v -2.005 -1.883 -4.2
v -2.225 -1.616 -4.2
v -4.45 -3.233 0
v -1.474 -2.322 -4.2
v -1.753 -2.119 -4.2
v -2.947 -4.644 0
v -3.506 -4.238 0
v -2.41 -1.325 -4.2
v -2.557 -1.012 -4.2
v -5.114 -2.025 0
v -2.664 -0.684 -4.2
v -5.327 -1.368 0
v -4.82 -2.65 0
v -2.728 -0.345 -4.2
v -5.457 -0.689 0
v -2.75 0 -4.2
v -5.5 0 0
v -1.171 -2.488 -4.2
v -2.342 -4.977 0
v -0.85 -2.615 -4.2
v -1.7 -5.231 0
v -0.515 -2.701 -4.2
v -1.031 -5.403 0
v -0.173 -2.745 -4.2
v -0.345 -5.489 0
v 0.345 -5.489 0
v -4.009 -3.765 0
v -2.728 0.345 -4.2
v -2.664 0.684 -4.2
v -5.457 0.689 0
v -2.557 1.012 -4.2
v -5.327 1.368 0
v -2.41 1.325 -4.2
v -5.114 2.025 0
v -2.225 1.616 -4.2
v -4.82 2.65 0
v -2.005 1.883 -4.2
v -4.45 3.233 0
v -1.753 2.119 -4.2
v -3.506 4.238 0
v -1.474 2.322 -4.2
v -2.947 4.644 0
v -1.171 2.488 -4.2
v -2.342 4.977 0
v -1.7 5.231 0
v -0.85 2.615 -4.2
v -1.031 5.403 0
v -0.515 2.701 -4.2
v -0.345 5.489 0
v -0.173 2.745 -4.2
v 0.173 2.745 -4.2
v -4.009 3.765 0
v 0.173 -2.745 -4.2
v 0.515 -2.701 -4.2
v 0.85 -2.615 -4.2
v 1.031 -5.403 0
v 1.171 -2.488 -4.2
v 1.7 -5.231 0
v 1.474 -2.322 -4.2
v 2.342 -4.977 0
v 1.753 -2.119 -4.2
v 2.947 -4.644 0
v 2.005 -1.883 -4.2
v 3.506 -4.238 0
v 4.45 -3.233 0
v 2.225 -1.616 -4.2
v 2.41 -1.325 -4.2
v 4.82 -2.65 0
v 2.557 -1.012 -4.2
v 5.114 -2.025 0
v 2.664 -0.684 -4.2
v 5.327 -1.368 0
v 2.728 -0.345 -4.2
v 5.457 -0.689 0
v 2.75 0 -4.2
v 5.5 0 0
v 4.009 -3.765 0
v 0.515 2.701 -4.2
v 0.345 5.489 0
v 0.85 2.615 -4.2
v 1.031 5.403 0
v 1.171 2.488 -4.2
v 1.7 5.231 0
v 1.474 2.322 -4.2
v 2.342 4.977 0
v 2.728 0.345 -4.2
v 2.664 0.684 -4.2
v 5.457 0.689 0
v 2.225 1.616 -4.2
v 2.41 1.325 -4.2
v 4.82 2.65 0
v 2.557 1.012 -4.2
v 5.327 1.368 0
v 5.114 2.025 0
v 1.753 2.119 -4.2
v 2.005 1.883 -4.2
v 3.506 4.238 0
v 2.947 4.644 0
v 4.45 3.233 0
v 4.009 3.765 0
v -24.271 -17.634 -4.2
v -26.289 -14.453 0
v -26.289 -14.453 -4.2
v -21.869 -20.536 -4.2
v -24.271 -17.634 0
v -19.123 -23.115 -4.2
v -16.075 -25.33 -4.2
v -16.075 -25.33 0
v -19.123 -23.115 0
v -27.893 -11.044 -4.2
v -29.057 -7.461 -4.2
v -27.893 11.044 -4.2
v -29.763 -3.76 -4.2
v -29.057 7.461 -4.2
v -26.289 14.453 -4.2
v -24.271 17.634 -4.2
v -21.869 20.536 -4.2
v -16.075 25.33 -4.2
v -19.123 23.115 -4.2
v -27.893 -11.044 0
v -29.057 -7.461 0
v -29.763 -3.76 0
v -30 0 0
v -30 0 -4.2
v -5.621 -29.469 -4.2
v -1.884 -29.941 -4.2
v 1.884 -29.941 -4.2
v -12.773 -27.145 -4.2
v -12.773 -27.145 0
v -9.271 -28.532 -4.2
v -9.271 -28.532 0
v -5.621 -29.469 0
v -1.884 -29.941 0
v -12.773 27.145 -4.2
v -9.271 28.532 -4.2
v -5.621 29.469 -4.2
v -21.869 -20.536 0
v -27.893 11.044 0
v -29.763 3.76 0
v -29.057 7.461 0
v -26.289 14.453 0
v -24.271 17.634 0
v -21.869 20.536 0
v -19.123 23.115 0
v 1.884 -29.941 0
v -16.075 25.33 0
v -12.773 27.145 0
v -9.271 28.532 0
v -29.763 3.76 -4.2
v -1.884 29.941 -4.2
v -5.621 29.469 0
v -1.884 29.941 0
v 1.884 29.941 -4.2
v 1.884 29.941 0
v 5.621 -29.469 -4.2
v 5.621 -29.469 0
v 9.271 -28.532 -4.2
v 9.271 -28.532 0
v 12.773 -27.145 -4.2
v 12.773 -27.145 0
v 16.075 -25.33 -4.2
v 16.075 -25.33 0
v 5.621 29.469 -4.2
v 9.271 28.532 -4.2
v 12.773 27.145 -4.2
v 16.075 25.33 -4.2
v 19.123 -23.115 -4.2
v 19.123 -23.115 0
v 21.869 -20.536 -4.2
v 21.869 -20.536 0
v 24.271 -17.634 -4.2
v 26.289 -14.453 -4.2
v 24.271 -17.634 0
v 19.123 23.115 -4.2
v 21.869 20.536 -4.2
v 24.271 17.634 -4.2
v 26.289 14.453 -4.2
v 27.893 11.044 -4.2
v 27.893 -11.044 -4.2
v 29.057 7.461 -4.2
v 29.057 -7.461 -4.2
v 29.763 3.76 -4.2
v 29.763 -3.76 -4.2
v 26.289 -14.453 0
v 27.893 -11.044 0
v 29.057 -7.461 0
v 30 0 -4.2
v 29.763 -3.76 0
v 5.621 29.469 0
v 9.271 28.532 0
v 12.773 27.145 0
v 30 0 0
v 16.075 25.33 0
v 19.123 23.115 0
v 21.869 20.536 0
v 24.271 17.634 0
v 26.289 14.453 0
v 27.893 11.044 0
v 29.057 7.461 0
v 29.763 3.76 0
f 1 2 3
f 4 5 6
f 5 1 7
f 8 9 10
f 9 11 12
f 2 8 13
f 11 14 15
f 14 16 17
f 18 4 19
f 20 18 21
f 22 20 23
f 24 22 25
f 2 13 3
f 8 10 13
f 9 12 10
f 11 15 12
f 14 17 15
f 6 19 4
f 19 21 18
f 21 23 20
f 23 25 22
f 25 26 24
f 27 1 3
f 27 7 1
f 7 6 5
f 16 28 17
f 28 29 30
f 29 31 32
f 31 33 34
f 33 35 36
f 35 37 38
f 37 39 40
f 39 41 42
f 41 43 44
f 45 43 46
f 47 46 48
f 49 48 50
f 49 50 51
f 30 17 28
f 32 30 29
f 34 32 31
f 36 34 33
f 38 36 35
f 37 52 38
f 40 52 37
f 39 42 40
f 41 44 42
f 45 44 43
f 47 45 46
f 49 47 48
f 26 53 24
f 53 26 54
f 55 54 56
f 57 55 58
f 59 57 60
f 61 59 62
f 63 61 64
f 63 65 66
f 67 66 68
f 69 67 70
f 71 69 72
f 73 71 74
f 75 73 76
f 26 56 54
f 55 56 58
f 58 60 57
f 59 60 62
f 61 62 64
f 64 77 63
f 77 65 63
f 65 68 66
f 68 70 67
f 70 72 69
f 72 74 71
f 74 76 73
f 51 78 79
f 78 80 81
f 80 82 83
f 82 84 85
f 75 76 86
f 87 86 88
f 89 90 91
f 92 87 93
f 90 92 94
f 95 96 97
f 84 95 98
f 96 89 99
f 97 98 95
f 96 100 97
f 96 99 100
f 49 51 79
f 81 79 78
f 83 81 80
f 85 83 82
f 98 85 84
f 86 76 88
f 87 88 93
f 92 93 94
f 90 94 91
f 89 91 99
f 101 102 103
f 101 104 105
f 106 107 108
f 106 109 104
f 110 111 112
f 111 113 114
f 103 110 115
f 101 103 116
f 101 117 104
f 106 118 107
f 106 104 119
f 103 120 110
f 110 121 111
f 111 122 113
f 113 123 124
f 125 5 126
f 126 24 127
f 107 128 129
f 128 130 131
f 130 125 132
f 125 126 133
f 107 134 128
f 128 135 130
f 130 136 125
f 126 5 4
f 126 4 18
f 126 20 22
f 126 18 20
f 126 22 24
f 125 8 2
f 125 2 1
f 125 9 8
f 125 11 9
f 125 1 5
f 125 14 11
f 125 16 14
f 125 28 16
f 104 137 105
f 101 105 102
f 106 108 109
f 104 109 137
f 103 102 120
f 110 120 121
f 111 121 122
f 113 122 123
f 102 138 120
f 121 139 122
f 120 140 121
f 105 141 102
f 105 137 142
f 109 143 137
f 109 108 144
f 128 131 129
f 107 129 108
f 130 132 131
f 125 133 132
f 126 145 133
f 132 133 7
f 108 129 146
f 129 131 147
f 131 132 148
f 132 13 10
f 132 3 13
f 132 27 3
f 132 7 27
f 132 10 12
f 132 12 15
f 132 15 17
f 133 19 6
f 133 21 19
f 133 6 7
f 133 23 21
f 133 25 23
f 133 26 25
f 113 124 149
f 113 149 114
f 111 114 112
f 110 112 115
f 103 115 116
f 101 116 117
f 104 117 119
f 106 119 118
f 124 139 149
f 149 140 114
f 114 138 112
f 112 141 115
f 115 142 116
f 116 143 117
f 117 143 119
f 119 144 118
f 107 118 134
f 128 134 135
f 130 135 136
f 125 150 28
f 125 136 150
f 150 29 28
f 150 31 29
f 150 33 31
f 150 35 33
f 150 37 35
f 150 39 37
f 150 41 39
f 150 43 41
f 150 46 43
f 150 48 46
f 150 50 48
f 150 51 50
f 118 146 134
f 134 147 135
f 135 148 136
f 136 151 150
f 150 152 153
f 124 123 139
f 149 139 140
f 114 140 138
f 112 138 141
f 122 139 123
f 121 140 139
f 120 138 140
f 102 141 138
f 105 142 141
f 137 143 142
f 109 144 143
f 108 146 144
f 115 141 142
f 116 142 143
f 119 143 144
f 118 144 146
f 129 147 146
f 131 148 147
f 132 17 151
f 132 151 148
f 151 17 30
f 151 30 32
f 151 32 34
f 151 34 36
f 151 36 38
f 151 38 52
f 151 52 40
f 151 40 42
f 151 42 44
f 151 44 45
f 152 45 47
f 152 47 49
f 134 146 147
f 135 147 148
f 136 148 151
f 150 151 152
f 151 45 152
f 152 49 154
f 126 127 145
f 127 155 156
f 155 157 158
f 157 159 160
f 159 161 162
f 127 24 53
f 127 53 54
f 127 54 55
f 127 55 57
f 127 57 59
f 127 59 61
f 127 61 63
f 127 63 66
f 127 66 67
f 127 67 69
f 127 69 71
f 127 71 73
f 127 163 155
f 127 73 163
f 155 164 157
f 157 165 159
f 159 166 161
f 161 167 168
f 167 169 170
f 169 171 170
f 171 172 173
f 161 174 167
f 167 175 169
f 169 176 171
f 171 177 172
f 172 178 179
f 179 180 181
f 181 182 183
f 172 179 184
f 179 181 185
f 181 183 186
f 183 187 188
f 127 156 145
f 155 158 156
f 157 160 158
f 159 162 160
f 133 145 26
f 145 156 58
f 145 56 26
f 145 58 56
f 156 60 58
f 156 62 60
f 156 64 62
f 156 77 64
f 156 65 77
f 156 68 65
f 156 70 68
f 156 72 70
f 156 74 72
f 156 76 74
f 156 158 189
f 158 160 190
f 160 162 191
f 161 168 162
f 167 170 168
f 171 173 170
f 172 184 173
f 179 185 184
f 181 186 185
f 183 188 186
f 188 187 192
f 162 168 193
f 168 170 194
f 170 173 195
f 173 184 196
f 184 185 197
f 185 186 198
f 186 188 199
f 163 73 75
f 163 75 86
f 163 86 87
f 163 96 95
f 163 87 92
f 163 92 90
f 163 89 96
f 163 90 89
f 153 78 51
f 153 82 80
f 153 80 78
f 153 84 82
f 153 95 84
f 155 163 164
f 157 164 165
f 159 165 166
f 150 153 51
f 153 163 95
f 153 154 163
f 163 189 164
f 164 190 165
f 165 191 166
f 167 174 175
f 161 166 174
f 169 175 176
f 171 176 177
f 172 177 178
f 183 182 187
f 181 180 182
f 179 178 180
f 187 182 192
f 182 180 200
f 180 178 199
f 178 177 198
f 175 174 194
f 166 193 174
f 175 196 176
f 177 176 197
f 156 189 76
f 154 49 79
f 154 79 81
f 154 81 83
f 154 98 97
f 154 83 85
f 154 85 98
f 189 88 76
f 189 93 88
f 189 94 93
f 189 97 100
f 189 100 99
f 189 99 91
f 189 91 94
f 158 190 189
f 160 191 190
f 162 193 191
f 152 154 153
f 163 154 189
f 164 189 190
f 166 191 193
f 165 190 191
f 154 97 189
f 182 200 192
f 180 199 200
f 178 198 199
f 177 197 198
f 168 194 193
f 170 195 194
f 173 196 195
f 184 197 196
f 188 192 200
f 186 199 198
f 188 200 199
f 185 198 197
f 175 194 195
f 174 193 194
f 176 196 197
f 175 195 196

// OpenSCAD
$fn = 50;

difference() {
	union() {
		translate(v = [0, 0, -4.2]) {
			cylinder(h = 4.2, r = 30.0);
		}
	}
	union() {
		translate(v = [0, 0, 0]) {
			rotate(a = [0, 0, 0]) {
				difference() {
					union() {
						translate(v = [0, 0, -7.2]) {
							cylinder(h = 7.2, r = 2.25);
						}
						translate(v = [0, 0, -4.2]) {
							cylinder(h = 4.2, r1 = 2.75, r2 = 5.5);
						}
						translate(v = [0, 0, -7.2]) {
							cylinder(h = 7.2, r = 2.75);
						}
						translate(v = [0, 0, -7.2]) {
							cylinder(h = 7.2, r = 2.25);
						}
					}
					union();
				}
			}
		}
	}
}
